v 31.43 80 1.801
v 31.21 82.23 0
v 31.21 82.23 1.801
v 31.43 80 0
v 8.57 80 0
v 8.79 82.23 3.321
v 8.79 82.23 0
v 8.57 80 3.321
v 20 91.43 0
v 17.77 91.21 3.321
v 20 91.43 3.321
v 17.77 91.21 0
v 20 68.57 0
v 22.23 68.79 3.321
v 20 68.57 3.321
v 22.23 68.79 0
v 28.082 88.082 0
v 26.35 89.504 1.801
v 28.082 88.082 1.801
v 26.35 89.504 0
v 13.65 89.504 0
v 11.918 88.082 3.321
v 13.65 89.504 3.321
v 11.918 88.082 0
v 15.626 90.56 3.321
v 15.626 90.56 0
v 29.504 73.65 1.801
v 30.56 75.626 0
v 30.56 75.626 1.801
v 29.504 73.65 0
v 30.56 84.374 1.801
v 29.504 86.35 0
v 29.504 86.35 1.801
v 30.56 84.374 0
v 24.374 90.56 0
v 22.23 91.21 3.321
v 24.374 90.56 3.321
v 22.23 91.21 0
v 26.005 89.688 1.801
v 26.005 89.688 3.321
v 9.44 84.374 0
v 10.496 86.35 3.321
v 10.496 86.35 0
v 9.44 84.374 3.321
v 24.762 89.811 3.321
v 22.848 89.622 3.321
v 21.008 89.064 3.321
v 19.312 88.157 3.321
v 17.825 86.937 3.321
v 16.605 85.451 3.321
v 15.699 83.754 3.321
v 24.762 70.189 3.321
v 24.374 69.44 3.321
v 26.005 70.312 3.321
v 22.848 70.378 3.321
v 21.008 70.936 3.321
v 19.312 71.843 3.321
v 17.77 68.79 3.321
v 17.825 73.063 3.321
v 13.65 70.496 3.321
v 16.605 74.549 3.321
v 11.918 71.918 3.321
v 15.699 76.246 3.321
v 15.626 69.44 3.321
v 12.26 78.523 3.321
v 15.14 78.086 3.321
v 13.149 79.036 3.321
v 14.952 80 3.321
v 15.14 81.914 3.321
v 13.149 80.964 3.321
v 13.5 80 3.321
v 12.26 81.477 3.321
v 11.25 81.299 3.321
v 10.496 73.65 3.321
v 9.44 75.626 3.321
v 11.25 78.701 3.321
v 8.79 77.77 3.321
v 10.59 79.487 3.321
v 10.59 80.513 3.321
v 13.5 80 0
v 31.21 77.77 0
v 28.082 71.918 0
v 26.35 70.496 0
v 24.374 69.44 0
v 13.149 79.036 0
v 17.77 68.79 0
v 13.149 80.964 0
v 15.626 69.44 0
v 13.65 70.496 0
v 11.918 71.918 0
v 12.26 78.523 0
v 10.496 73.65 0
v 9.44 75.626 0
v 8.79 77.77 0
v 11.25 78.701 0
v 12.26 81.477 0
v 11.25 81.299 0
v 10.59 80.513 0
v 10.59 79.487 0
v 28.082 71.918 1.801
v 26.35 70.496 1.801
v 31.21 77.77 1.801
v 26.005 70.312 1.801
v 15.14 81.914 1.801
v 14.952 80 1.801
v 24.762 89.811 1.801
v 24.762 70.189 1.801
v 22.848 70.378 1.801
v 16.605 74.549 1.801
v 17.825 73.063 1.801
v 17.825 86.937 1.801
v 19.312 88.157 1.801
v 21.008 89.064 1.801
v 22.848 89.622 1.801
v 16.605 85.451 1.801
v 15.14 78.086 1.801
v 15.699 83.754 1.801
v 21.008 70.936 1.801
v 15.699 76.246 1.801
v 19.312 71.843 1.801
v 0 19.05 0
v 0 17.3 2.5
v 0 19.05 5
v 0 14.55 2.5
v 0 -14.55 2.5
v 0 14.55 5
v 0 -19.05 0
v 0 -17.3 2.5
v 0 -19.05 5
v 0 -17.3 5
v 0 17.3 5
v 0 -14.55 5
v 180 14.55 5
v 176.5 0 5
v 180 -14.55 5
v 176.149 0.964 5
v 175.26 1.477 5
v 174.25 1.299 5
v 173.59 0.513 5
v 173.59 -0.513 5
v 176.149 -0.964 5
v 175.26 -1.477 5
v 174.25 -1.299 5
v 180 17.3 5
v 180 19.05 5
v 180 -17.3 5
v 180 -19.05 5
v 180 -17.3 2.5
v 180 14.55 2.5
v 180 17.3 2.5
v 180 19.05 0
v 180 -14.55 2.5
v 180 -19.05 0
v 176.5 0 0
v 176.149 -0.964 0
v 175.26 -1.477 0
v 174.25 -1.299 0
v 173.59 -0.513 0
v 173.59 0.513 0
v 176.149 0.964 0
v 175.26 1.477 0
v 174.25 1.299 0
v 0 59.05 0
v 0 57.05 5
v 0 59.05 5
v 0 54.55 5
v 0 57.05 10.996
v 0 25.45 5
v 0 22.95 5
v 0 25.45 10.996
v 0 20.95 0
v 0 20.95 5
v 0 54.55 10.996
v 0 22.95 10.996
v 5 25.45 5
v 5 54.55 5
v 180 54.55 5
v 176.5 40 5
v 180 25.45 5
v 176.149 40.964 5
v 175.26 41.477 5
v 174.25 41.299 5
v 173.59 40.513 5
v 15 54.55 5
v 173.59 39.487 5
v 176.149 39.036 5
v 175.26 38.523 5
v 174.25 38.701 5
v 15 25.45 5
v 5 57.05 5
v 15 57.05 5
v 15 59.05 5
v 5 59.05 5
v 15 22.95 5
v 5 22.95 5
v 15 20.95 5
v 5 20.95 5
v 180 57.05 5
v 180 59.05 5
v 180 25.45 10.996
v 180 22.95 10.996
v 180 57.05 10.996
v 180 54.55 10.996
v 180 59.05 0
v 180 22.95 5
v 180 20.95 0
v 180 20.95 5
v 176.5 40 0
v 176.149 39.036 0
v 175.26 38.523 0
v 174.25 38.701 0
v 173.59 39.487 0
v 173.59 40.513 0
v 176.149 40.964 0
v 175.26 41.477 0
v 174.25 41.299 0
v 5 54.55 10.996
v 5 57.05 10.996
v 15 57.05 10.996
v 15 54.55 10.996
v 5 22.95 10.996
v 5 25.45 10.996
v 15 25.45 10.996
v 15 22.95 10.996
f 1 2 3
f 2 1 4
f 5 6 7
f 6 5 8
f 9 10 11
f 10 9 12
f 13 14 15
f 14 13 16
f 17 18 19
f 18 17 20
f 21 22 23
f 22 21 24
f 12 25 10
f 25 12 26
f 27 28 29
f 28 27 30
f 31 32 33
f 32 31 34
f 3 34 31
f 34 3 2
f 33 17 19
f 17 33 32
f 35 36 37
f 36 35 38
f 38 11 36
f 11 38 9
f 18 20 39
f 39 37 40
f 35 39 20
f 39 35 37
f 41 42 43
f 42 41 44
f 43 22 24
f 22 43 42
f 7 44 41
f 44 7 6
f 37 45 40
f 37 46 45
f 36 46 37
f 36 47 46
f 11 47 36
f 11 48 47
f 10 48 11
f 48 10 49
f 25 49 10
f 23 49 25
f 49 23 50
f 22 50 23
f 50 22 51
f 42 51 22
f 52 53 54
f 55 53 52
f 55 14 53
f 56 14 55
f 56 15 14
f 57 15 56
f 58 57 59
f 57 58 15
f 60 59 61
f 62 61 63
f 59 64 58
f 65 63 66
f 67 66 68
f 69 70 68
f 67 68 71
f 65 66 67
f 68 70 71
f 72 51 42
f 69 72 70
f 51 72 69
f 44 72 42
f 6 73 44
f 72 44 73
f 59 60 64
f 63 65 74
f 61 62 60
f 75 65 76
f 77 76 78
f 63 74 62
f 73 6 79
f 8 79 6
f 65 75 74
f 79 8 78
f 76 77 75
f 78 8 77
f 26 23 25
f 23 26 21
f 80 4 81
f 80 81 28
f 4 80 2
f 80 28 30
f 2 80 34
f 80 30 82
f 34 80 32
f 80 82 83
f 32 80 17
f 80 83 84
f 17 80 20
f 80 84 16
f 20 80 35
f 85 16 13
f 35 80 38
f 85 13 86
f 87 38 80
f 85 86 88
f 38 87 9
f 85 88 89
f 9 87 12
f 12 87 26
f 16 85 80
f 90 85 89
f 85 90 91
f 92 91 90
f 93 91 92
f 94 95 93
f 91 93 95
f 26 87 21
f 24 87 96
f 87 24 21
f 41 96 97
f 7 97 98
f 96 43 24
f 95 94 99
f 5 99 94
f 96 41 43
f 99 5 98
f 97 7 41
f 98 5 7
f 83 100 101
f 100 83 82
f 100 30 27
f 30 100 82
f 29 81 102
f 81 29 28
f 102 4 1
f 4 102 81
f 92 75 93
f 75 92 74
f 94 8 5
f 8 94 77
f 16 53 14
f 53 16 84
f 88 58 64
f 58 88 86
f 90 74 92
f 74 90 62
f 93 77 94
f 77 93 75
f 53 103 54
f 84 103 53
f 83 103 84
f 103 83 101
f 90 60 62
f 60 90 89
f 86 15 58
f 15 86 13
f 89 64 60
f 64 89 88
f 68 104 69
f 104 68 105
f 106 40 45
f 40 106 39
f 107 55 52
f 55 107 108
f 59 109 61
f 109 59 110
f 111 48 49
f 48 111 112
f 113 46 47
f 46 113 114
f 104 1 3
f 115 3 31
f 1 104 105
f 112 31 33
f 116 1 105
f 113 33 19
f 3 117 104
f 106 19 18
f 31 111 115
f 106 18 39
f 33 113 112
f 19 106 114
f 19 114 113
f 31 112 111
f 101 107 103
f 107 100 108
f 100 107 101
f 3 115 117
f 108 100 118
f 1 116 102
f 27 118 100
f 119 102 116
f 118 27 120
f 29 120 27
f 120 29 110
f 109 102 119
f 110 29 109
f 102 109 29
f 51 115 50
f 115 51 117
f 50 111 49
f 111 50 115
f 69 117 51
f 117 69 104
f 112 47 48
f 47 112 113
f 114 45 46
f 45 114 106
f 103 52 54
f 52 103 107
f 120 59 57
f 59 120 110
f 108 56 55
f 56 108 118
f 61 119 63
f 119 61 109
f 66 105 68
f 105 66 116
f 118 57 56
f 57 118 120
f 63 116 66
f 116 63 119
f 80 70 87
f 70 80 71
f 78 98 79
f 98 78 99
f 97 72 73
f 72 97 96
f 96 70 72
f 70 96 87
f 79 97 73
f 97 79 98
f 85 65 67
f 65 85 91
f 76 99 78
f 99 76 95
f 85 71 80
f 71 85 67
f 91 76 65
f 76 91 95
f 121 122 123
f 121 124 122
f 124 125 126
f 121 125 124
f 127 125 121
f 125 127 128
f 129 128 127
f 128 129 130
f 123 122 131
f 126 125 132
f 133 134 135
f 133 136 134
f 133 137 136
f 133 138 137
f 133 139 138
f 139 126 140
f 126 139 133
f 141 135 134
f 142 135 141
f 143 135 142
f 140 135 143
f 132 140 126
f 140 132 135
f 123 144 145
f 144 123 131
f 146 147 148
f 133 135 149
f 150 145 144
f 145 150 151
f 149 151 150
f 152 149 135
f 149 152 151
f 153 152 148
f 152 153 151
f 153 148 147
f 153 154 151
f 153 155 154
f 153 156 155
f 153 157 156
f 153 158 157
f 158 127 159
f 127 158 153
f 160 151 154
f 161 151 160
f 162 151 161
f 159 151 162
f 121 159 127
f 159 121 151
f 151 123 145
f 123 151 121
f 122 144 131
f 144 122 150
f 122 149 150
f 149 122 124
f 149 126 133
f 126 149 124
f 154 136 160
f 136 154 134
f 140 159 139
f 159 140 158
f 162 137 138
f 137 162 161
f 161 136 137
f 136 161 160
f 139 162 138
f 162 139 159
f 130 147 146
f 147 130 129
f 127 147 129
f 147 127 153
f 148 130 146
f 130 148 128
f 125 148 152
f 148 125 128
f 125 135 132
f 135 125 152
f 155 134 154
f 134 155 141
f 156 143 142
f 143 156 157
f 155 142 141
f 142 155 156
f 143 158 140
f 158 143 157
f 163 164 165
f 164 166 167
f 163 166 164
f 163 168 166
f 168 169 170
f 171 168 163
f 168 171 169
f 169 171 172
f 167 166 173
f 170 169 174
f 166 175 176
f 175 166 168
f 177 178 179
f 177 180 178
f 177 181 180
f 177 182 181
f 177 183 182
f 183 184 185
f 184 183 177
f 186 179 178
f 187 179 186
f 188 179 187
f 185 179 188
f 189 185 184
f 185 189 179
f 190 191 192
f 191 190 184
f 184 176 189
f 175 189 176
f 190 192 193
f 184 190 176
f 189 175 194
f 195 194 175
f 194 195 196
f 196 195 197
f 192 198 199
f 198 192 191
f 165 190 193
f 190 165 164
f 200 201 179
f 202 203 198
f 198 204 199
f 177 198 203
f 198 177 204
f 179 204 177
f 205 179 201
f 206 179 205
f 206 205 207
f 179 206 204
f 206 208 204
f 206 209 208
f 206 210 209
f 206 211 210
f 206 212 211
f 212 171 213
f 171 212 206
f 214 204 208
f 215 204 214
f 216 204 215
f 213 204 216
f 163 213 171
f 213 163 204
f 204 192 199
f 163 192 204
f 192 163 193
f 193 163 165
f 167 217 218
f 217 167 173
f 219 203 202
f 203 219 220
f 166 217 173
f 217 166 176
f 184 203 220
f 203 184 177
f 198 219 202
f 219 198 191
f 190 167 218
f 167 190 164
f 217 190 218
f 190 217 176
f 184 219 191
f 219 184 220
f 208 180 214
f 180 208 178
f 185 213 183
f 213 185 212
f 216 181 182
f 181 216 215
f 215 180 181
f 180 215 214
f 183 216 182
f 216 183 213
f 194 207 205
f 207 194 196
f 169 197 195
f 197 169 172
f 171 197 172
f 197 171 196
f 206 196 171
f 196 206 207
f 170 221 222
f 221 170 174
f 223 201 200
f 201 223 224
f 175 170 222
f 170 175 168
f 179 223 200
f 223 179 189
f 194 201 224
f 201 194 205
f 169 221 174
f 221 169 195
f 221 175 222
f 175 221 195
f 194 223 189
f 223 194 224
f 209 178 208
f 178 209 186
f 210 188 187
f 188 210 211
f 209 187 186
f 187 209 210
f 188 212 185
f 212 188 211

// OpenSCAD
// <  H  >     <  H  >
// +-----+< P >+-----+
// |     |     |     |
// +--------------+  |
// |              |  |
// |              |  |
// +--------------+  |
// |     |     |     |
// <       F      >
//                 <Q>
// Know H, P, I want to find F and Q
// H+H+P = F+Q
// Q = H/2
// 2*H+P = F+H/2
// 2*H-0.5*H = F-P
// 1.5H+P = F

penny_rad_cm = 0.9525;
penny_height_cm = 0.152;
penny_diam_cm = penny_rad_cm*2 * 1.1;
penny_thick_cm = penny_height_cm * 1.1;
w = 10;
l = penny_diam_cm * 2.5 / 2.0;
h = 1;
foot_w = 0.5;
foot_l = 0.5;
foot_h = 1.5*h + penny_thick_cm;
indent = 0;
q = 2;
enlarge = 2.0;

base_thick = 0.5;
space = penny_height_cm * 2.3;
sabot_h = space * 0.95;
half_width = penny_rad_cm*2;
edge_width = 0.25;
length = 18;

module edge(s) {
    color("Red")
    translate([0,half_width-edge_width-0.2,base_thick/2])
    scale([1,s,1])
    cube([length,edge_width,space+base_thick]);
}

module detent_part() {
    difference() {
        cube([length,half_width,base_thick]);
        edge(1.1);

        color("Pink")
        translate([length-0.5,0,-1])
        cylinder(r=0.15,h=9, $fn=9);

    }
}

module tab_part() {
    difference() {
        union() {
            cube([length,half_width,base_thick]);
            edge(1);
        }
        color("Blue")
        translate([0.5,0,base_thick])
        cube([1,half_width,space*4]);

        color("Pink")
        translate([length-0.5,0,-1])
        cylinder(r=0.15,h=9, $fn=9);

    }
}

scale(10) {
    detent_part();
    mirror([0,1,0])
    detent_part();

    translate([0,4,0]) {
        tab_part();
        mirror([0,1,0])
        tab_part();
    }

    // Sabot
    translate([2,8,0])
    difference() {
        cylinder(r=penny_rad_cm*1.2, h=sabot_h, $fn=32);

        color("Lime")
        translate([penny_rad_cm/2,0,sabot_h-penny_height_cm])
        cylinder(r=penny_rad_cm*1.03, h=penny_height_cm, $fn=32);
        
        color("Red")
        translate([-0.8,0,-1])
        cylinder(r=0.15,h=9, $fn=9);
    }
}
